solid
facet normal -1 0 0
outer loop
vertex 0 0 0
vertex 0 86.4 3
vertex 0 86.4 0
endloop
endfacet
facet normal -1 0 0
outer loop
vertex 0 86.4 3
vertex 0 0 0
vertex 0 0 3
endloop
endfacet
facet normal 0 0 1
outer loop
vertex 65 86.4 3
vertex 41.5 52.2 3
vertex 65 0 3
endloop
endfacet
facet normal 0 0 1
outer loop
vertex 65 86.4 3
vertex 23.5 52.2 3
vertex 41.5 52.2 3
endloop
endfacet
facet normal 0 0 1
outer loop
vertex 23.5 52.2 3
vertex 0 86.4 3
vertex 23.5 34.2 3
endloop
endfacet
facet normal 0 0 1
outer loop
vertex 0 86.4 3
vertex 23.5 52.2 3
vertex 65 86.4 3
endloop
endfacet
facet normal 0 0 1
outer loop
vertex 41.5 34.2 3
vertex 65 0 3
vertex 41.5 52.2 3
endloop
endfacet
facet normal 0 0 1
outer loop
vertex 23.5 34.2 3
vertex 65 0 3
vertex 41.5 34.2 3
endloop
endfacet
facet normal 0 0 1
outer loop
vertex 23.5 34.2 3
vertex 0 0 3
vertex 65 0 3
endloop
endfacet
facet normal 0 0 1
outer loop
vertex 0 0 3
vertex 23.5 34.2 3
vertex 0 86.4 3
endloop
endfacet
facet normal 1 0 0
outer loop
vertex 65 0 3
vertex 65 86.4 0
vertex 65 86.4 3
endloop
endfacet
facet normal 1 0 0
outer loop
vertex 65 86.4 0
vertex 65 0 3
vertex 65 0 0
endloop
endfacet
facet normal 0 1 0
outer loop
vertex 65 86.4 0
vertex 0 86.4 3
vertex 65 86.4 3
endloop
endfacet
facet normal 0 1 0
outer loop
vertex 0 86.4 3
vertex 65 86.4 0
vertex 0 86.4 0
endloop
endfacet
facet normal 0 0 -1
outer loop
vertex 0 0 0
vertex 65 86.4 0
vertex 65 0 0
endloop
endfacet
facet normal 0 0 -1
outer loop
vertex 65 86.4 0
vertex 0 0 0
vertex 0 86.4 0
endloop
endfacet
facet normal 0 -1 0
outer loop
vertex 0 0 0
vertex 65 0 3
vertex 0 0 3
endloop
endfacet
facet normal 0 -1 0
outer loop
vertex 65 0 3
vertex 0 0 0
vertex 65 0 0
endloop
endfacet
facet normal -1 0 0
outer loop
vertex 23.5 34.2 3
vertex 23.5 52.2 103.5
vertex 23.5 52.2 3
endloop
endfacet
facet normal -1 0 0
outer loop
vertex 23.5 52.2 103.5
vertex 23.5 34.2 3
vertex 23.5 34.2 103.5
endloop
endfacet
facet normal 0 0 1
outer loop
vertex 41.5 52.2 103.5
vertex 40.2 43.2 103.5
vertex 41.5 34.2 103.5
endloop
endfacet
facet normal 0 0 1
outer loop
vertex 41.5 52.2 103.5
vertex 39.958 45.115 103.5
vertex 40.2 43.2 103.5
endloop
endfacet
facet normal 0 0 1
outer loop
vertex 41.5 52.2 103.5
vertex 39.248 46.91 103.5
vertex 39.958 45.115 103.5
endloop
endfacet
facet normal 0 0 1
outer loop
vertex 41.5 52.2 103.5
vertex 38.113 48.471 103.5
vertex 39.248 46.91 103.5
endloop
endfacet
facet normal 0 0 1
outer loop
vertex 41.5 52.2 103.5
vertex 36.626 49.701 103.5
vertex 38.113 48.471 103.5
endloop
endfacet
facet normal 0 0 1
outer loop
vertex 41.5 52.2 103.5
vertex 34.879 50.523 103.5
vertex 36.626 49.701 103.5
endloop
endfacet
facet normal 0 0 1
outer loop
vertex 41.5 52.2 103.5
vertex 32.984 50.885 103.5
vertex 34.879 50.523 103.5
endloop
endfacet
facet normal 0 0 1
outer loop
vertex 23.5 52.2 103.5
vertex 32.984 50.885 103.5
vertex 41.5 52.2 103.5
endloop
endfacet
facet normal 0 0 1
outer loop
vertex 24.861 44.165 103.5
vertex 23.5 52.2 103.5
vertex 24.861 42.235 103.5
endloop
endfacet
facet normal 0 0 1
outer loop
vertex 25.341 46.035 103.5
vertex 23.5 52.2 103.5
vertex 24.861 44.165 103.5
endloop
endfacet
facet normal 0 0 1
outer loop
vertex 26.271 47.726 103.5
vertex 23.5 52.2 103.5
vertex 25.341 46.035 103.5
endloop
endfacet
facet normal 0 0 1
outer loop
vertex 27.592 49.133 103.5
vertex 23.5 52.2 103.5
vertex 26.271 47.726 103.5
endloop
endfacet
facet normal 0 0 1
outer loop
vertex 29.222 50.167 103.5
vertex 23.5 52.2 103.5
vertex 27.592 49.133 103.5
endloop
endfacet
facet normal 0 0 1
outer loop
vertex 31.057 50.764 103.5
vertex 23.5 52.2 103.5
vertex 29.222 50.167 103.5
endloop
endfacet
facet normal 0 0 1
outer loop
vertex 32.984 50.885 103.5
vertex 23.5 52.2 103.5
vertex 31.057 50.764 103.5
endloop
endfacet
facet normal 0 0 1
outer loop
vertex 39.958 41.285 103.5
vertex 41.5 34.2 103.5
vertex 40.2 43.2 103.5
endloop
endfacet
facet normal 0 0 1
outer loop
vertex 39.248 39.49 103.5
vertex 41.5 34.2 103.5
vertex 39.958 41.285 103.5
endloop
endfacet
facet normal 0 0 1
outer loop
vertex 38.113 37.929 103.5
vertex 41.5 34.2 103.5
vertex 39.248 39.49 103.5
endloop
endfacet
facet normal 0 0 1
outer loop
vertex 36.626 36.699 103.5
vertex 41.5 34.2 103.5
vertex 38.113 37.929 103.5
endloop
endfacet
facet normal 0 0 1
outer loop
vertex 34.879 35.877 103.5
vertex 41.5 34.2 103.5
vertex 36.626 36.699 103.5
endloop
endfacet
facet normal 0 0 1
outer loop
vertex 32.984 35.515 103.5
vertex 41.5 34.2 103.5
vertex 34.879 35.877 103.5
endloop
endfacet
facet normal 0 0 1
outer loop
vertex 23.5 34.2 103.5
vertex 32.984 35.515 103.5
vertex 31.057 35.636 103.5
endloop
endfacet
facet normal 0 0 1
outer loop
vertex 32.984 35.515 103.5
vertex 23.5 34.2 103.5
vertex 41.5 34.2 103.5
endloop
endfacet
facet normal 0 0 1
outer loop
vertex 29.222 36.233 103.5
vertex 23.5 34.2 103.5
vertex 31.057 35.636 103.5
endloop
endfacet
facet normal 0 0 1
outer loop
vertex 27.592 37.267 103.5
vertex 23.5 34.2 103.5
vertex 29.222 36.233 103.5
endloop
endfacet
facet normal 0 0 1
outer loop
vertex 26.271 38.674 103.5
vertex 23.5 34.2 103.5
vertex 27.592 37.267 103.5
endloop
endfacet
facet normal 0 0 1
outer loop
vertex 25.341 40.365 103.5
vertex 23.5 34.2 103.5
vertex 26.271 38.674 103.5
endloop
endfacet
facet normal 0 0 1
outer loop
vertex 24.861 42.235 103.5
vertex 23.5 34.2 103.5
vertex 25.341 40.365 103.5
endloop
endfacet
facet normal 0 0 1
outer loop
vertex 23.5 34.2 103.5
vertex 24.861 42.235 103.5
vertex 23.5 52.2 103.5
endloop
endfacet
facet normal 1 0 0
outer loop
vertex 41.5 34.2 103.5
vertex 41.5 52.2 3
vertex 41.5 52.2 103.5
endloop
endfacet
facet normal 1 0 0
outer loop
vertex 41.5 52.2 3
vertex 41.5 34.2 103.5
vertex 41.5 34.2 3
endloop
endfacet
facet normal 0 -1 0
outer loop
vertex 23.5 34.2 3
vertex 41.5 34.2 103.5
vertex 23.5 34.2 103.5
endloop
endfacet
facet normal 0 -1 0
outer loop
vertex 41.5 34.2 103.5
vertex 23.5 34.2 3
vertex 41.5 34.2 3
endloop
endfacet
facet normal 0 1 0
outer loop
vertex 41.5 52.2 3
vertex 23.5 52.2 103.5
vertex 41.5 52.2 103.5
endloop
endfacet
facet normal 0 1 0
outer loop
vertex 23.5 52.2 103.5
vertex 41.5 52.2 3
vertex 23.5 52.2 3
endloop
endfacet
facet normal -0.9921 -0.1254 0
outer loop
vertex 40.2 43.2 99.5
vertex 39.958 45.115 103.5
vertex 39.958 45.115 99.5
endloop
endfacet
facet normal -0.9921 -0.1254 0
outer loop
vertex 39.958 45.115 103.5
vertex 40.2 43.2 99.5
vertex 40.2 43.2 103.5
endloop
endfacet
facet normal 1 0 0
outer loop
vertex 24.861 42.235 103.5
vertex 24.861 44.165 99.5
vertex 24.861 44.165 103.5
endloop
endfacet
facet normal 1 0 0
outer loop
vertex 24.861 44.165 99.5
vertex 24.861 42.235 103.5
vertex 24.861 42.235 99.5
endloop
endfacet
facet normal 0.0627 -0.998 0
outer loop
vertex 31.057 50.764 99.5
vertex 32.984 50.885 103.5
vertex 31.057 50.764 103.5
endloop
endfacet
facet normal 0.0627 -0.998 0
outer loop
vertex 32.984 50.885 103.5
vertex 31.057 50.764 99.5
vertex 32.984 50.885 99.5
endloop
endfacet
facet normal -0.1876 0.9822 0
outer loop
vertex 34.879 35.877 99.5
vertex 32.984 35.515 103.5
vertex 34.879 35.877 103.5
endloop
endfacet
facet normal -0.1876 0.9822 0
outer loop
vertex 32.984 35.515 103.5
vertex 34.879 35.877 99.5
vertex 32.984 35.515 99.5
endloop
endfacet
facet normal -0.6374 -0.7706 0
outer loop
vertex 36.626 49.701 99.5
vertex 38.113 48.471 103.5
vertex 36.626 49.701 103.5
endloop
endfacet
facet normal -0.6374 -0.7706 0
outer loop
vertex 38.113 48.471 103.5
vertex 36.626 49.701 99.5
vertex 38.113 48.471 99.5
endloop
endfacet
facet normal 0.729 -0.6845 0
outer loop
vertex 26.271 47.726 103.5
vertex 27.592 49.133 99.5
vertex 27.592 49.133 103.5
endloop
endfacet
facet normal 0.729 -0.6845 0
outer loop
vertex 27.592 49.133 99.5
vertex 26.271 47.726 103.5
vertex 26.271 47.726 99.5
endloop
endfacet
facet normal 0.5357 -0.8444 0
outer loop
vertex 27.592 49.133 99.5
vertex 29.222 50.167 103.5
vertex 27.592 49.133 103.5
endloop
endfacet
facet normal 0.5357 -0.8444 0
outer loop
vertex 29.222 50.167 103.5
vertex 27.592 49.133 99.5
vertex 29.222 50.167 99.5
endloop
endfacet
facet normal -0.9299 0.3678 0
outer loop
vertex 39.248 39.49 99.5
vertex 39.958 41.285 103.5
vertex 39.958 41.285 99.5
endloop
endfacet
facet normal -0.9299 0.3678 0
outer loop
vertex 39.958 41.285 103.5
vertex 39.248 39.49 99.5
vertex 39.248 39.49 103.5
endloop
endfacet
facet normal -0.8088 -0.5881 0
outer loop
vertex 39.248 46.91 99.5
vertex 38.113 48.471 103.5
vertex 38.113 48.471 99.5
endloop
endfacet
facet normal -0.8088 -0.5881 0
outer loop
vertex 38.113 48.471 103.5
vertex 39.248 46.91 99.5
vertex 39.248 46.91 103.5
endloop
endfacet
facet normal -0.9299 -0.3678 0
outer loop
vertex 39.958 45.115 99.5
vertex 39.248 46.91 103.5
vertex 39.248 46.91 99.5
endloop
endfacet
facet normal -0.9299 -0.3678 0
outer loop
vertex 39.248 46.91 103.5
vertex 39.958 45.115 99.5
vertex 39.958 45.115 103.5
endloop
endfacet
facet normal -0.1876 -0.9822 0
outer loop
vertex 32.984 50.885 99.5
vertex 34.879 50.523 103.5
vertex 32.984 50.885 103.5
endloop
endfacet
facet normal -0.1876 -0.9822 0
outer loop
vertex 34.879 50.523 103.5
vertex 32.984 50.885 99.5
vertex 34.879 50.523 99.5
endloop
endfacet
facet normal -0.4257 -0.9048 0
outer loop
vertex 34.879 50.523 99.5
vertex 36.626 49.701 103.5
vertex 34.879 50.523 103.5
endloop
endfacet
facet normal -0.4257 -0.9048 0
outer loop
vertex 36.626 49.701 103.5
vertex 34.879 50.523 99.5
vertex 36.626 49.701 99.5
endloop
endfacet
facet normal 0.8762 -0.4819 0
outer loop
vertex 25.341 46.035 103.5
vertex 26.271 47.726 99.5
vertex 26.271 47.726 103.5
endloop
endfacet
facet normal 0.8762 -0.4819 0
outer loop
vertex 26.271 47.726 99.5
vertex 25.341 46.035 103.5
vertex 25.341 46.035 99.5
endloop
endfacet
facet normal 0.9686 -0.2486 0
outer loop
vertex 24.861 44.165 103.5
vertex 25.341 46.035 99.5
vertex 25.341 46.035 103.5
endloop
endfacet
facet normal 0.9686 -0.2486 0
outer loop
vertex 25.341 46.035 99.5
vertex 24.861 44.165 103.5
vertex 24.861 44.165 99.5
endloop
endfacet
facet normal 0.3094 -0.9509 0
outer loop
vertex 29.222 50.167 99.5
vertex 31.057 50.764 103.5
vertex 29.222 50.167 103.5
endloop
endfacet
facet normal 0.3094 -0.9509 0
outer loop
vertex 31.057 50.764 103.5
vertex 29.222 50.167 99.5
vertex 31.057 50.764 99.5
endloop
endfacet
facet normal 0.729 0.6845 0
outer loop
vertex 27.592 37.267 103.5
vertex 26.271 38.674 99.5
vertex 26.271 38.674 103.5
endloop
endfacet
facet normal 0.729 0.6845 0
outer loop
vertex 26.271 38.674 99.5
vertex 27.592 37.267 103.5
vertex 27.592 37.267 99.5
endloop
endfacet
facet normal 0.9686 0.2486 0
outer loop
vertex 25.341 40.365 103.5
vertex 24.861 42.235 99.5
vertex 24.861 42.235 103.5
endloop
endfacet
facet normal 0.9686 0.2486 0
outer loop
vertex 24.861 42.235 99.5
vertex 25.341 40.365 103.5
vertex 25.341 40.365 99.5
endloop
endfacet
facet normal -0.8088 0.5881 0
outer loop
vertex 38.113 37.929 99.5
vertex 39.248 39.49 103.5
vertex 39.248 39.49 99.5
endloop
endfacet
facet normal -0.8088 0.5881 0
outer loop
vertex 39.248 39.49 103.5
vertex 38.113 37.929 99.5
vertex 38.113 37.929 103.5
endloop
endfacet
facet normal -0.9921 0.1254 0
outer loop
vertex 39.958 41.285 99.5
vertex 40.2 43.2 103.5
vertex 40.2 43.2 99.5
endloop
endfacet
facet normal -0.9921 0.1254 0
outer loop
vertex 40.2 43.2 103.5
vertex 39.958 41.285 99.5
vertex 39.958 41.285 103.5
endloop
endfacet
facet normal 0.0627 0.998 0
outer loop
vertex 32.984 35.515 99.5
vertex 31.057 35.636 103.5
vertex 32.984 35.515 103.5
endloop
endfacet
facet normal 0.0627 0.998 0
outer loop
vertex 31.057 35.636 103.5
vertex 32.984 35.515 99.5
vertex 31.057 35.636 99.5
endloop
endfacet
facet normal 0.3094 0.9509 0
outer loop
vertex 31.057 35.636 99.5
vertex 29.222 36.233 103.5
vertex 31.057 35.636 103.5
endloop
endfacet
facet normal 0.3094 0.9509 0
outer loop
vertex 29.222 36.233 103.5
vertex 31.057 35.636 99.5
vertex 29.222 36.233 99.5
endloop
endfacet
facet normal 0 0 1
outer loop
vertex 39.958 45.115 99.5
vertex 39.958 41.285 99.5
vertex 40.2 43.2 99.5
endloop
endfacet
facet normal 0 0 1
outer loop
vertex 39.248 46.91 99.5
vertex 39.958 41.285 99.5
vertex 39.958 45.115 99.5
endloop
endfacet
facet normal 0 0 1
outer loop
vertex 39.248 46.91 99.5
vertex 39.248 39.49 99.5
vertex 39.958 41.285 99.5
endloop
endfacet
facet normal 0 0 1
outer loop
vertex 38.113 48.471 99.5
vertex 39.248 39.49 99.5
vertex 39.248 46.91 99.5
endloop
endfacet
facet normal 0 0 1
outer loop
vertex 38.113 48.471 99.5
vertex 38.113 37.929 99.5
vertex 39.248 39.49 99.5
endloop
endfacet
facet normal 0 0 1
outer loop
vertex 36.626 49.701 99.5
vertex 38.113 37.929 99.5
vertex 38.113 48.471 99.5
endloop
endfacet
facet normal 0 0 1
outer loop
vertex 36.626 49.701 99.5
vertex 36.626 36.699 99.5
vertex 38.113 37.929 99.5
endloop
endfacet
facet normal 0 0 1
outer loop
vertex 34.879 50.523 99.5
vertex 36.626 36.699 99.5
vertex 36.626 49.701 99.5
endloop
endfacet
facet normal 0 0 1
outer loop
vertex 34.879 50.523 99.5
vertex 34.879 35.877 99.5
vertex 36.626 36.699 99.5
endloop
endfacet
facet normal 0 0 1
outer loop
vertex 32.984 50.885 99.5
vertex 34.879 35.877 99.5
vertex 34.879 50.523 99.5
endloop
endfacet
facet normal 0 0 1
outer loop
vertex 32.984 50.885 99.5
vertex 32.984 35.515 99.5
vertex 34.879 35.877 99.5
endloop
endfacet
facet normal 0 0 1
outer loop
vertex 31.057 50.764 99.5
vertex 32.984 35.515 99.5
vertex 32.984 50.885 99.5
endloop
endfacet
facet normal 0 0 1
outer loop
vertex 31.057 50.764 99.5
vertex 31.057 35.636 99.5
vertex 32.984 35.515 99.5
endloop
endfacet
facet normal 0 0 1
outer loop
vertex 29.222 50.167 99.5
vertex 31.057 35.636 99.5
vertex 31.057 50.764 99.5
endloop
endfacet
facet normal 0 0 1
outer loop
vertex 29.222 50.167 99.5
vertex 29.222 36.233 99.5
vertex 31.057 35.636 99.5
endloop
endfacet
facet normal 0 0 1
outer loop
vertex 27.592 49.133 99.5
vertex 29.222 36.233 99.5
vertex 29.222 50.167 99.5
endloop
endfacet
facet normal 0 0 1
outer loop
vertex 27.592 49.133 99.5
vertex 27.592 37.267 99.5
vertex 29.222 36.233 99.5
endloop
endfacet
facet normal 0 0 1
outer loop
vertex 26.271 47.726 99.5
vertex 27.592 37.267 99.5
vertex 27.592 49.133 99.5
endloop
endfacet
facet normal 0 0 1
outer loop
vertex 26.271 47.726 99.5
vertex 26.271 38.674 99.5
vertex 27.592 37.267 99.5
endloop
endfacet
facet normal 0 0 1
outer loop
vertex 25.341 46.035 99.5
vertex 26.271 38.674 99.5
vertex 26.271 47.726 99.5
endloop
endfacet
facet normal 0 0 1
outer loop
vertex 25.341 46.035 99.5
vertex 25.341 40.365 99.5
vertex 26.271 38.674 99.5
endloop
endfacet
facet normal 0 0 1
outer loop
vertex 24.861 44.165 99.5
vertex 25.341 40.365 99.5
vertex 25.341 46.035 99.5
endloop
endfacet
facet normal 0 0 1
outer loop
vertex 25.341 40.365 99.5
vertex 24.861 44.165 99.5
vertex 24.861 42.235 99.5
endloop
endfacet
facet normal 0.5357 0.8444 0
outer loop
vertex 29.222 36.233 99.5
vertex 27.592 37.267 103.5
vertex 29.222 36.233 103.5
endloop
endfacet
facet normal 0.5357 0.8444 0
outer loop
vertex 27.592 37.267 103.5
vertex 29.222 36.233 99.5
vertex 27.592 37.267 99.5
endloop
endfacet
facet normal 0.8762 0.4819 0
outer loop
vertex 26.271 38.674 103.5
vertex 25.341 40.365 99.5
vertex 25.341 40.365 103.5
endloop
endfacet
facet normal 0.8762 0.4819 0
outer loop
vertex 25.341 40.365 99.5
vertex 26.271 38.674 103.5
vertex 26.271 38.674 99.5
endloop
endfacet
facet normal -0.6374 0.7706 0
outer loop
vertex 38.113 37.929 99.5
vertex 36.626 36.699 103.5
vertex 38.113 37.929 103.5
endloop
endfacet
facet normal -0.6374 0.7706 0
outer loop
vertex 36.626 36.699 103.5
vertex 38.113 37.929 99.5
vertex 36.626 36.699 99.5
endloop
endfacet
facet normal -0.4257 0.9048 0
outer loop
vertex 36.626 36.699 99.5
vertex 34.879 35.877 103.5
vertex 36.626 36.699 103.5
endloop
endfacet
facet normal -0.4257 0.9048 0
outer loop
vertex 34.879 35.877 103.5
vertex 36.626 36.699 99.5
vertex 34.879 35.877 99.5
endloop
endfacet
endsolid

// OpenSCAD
// file: ColonistsGoodsLib.scad
singleGoodPileHeight = 2.15;
singleGoodPileWidth = 15.05 + 1.3;
singleGoodPileLength = 15.05 + 1.3;
goodPileCount = 10;
goodPileHeight = (goodPileCount * singleGoodPileHeight) + .5;
module LeftGoodPile(wallThickness, totalHeight){
//    15.05 by 14.95 by 2.15

    openingSize = singleGoodPileWidth * .75;
    blockerSize = (singleGoodPileLength - openingSize) / 2;
    
    translate([wallThickness, wallThickness, totalHeight - goodPileHeight])
        cube([singleGoodPileLength, singleGoodPileWidth, goodPileHeight]);
    translate([-.00001, wallThickness + (blockerSize), 0])
        cube([wallThickness + openingSize, openingSize, totalHeight]);
}

module RightGoodPile(wallThickness, totalHeight){
    translate([0, wallThickness + wallThickness + singleGoodPileWidth, 0])
        rotate([0, 0, 180])
            LeftGoodPile(wallThickness, totalHeight);
}

module BottomGoodPile(wallThickness, totalHeight){
    translate([wallThickness + wallThickness + singleGoodPileWidth, 0, 0])
        rotate([0, 0, 90])
            LeftGoodPile(wallThickness, totalHeight);
}

module TopGoodPile(wallThickness, totalHeight){
//    translate([
//        wallThickness + wallThickness + singleGoodPileWidth,
//        wallThickness + wallThickness + singleGoodPileWidth,
//        0])
        rotate([0, 0, 270])
            LeftGoodPile(wallThickness, totalHeight);
}
// main file
include<ColonistsGoodsLib.scad>
wallThickness = 3;
length = 65;
width = (singleGoodPileLength + wallThickness) * 4 + wallThickness * 3;

height = 3;


magnetHoleWidth = 19;
floorThickness = 3;

pillarHeight = ((goodPileHeight + floorThickness) * 4)+ .5 + height;
echo (pillarHeight);

//Based on magnet size:
pillarSideLength = 18;
pillarSideOffset = .5;

magnetBaseInnerDiameter = 15.4;
magnetHeight = 4.0;

spaceBetweenCircles = 2;


difference() {
union(){
    cube([length, width, height]);


//----------------------------------


            
//---------------------------------------------------------------------
    
          

//----------------------------------------
   
    translate([length/2 - ((pillarSideLength)/2), width/2 - ((pillarSideLength)/2), 0])
        cube([pillarSideLength, pillarSideLength, pillarHeight]);
        

}
    translate([length/2,  width/2, pillarHeight - magnetHeight])
        cylinder(magnetHeight, d=magnetBaseInnerDiameter);

}
